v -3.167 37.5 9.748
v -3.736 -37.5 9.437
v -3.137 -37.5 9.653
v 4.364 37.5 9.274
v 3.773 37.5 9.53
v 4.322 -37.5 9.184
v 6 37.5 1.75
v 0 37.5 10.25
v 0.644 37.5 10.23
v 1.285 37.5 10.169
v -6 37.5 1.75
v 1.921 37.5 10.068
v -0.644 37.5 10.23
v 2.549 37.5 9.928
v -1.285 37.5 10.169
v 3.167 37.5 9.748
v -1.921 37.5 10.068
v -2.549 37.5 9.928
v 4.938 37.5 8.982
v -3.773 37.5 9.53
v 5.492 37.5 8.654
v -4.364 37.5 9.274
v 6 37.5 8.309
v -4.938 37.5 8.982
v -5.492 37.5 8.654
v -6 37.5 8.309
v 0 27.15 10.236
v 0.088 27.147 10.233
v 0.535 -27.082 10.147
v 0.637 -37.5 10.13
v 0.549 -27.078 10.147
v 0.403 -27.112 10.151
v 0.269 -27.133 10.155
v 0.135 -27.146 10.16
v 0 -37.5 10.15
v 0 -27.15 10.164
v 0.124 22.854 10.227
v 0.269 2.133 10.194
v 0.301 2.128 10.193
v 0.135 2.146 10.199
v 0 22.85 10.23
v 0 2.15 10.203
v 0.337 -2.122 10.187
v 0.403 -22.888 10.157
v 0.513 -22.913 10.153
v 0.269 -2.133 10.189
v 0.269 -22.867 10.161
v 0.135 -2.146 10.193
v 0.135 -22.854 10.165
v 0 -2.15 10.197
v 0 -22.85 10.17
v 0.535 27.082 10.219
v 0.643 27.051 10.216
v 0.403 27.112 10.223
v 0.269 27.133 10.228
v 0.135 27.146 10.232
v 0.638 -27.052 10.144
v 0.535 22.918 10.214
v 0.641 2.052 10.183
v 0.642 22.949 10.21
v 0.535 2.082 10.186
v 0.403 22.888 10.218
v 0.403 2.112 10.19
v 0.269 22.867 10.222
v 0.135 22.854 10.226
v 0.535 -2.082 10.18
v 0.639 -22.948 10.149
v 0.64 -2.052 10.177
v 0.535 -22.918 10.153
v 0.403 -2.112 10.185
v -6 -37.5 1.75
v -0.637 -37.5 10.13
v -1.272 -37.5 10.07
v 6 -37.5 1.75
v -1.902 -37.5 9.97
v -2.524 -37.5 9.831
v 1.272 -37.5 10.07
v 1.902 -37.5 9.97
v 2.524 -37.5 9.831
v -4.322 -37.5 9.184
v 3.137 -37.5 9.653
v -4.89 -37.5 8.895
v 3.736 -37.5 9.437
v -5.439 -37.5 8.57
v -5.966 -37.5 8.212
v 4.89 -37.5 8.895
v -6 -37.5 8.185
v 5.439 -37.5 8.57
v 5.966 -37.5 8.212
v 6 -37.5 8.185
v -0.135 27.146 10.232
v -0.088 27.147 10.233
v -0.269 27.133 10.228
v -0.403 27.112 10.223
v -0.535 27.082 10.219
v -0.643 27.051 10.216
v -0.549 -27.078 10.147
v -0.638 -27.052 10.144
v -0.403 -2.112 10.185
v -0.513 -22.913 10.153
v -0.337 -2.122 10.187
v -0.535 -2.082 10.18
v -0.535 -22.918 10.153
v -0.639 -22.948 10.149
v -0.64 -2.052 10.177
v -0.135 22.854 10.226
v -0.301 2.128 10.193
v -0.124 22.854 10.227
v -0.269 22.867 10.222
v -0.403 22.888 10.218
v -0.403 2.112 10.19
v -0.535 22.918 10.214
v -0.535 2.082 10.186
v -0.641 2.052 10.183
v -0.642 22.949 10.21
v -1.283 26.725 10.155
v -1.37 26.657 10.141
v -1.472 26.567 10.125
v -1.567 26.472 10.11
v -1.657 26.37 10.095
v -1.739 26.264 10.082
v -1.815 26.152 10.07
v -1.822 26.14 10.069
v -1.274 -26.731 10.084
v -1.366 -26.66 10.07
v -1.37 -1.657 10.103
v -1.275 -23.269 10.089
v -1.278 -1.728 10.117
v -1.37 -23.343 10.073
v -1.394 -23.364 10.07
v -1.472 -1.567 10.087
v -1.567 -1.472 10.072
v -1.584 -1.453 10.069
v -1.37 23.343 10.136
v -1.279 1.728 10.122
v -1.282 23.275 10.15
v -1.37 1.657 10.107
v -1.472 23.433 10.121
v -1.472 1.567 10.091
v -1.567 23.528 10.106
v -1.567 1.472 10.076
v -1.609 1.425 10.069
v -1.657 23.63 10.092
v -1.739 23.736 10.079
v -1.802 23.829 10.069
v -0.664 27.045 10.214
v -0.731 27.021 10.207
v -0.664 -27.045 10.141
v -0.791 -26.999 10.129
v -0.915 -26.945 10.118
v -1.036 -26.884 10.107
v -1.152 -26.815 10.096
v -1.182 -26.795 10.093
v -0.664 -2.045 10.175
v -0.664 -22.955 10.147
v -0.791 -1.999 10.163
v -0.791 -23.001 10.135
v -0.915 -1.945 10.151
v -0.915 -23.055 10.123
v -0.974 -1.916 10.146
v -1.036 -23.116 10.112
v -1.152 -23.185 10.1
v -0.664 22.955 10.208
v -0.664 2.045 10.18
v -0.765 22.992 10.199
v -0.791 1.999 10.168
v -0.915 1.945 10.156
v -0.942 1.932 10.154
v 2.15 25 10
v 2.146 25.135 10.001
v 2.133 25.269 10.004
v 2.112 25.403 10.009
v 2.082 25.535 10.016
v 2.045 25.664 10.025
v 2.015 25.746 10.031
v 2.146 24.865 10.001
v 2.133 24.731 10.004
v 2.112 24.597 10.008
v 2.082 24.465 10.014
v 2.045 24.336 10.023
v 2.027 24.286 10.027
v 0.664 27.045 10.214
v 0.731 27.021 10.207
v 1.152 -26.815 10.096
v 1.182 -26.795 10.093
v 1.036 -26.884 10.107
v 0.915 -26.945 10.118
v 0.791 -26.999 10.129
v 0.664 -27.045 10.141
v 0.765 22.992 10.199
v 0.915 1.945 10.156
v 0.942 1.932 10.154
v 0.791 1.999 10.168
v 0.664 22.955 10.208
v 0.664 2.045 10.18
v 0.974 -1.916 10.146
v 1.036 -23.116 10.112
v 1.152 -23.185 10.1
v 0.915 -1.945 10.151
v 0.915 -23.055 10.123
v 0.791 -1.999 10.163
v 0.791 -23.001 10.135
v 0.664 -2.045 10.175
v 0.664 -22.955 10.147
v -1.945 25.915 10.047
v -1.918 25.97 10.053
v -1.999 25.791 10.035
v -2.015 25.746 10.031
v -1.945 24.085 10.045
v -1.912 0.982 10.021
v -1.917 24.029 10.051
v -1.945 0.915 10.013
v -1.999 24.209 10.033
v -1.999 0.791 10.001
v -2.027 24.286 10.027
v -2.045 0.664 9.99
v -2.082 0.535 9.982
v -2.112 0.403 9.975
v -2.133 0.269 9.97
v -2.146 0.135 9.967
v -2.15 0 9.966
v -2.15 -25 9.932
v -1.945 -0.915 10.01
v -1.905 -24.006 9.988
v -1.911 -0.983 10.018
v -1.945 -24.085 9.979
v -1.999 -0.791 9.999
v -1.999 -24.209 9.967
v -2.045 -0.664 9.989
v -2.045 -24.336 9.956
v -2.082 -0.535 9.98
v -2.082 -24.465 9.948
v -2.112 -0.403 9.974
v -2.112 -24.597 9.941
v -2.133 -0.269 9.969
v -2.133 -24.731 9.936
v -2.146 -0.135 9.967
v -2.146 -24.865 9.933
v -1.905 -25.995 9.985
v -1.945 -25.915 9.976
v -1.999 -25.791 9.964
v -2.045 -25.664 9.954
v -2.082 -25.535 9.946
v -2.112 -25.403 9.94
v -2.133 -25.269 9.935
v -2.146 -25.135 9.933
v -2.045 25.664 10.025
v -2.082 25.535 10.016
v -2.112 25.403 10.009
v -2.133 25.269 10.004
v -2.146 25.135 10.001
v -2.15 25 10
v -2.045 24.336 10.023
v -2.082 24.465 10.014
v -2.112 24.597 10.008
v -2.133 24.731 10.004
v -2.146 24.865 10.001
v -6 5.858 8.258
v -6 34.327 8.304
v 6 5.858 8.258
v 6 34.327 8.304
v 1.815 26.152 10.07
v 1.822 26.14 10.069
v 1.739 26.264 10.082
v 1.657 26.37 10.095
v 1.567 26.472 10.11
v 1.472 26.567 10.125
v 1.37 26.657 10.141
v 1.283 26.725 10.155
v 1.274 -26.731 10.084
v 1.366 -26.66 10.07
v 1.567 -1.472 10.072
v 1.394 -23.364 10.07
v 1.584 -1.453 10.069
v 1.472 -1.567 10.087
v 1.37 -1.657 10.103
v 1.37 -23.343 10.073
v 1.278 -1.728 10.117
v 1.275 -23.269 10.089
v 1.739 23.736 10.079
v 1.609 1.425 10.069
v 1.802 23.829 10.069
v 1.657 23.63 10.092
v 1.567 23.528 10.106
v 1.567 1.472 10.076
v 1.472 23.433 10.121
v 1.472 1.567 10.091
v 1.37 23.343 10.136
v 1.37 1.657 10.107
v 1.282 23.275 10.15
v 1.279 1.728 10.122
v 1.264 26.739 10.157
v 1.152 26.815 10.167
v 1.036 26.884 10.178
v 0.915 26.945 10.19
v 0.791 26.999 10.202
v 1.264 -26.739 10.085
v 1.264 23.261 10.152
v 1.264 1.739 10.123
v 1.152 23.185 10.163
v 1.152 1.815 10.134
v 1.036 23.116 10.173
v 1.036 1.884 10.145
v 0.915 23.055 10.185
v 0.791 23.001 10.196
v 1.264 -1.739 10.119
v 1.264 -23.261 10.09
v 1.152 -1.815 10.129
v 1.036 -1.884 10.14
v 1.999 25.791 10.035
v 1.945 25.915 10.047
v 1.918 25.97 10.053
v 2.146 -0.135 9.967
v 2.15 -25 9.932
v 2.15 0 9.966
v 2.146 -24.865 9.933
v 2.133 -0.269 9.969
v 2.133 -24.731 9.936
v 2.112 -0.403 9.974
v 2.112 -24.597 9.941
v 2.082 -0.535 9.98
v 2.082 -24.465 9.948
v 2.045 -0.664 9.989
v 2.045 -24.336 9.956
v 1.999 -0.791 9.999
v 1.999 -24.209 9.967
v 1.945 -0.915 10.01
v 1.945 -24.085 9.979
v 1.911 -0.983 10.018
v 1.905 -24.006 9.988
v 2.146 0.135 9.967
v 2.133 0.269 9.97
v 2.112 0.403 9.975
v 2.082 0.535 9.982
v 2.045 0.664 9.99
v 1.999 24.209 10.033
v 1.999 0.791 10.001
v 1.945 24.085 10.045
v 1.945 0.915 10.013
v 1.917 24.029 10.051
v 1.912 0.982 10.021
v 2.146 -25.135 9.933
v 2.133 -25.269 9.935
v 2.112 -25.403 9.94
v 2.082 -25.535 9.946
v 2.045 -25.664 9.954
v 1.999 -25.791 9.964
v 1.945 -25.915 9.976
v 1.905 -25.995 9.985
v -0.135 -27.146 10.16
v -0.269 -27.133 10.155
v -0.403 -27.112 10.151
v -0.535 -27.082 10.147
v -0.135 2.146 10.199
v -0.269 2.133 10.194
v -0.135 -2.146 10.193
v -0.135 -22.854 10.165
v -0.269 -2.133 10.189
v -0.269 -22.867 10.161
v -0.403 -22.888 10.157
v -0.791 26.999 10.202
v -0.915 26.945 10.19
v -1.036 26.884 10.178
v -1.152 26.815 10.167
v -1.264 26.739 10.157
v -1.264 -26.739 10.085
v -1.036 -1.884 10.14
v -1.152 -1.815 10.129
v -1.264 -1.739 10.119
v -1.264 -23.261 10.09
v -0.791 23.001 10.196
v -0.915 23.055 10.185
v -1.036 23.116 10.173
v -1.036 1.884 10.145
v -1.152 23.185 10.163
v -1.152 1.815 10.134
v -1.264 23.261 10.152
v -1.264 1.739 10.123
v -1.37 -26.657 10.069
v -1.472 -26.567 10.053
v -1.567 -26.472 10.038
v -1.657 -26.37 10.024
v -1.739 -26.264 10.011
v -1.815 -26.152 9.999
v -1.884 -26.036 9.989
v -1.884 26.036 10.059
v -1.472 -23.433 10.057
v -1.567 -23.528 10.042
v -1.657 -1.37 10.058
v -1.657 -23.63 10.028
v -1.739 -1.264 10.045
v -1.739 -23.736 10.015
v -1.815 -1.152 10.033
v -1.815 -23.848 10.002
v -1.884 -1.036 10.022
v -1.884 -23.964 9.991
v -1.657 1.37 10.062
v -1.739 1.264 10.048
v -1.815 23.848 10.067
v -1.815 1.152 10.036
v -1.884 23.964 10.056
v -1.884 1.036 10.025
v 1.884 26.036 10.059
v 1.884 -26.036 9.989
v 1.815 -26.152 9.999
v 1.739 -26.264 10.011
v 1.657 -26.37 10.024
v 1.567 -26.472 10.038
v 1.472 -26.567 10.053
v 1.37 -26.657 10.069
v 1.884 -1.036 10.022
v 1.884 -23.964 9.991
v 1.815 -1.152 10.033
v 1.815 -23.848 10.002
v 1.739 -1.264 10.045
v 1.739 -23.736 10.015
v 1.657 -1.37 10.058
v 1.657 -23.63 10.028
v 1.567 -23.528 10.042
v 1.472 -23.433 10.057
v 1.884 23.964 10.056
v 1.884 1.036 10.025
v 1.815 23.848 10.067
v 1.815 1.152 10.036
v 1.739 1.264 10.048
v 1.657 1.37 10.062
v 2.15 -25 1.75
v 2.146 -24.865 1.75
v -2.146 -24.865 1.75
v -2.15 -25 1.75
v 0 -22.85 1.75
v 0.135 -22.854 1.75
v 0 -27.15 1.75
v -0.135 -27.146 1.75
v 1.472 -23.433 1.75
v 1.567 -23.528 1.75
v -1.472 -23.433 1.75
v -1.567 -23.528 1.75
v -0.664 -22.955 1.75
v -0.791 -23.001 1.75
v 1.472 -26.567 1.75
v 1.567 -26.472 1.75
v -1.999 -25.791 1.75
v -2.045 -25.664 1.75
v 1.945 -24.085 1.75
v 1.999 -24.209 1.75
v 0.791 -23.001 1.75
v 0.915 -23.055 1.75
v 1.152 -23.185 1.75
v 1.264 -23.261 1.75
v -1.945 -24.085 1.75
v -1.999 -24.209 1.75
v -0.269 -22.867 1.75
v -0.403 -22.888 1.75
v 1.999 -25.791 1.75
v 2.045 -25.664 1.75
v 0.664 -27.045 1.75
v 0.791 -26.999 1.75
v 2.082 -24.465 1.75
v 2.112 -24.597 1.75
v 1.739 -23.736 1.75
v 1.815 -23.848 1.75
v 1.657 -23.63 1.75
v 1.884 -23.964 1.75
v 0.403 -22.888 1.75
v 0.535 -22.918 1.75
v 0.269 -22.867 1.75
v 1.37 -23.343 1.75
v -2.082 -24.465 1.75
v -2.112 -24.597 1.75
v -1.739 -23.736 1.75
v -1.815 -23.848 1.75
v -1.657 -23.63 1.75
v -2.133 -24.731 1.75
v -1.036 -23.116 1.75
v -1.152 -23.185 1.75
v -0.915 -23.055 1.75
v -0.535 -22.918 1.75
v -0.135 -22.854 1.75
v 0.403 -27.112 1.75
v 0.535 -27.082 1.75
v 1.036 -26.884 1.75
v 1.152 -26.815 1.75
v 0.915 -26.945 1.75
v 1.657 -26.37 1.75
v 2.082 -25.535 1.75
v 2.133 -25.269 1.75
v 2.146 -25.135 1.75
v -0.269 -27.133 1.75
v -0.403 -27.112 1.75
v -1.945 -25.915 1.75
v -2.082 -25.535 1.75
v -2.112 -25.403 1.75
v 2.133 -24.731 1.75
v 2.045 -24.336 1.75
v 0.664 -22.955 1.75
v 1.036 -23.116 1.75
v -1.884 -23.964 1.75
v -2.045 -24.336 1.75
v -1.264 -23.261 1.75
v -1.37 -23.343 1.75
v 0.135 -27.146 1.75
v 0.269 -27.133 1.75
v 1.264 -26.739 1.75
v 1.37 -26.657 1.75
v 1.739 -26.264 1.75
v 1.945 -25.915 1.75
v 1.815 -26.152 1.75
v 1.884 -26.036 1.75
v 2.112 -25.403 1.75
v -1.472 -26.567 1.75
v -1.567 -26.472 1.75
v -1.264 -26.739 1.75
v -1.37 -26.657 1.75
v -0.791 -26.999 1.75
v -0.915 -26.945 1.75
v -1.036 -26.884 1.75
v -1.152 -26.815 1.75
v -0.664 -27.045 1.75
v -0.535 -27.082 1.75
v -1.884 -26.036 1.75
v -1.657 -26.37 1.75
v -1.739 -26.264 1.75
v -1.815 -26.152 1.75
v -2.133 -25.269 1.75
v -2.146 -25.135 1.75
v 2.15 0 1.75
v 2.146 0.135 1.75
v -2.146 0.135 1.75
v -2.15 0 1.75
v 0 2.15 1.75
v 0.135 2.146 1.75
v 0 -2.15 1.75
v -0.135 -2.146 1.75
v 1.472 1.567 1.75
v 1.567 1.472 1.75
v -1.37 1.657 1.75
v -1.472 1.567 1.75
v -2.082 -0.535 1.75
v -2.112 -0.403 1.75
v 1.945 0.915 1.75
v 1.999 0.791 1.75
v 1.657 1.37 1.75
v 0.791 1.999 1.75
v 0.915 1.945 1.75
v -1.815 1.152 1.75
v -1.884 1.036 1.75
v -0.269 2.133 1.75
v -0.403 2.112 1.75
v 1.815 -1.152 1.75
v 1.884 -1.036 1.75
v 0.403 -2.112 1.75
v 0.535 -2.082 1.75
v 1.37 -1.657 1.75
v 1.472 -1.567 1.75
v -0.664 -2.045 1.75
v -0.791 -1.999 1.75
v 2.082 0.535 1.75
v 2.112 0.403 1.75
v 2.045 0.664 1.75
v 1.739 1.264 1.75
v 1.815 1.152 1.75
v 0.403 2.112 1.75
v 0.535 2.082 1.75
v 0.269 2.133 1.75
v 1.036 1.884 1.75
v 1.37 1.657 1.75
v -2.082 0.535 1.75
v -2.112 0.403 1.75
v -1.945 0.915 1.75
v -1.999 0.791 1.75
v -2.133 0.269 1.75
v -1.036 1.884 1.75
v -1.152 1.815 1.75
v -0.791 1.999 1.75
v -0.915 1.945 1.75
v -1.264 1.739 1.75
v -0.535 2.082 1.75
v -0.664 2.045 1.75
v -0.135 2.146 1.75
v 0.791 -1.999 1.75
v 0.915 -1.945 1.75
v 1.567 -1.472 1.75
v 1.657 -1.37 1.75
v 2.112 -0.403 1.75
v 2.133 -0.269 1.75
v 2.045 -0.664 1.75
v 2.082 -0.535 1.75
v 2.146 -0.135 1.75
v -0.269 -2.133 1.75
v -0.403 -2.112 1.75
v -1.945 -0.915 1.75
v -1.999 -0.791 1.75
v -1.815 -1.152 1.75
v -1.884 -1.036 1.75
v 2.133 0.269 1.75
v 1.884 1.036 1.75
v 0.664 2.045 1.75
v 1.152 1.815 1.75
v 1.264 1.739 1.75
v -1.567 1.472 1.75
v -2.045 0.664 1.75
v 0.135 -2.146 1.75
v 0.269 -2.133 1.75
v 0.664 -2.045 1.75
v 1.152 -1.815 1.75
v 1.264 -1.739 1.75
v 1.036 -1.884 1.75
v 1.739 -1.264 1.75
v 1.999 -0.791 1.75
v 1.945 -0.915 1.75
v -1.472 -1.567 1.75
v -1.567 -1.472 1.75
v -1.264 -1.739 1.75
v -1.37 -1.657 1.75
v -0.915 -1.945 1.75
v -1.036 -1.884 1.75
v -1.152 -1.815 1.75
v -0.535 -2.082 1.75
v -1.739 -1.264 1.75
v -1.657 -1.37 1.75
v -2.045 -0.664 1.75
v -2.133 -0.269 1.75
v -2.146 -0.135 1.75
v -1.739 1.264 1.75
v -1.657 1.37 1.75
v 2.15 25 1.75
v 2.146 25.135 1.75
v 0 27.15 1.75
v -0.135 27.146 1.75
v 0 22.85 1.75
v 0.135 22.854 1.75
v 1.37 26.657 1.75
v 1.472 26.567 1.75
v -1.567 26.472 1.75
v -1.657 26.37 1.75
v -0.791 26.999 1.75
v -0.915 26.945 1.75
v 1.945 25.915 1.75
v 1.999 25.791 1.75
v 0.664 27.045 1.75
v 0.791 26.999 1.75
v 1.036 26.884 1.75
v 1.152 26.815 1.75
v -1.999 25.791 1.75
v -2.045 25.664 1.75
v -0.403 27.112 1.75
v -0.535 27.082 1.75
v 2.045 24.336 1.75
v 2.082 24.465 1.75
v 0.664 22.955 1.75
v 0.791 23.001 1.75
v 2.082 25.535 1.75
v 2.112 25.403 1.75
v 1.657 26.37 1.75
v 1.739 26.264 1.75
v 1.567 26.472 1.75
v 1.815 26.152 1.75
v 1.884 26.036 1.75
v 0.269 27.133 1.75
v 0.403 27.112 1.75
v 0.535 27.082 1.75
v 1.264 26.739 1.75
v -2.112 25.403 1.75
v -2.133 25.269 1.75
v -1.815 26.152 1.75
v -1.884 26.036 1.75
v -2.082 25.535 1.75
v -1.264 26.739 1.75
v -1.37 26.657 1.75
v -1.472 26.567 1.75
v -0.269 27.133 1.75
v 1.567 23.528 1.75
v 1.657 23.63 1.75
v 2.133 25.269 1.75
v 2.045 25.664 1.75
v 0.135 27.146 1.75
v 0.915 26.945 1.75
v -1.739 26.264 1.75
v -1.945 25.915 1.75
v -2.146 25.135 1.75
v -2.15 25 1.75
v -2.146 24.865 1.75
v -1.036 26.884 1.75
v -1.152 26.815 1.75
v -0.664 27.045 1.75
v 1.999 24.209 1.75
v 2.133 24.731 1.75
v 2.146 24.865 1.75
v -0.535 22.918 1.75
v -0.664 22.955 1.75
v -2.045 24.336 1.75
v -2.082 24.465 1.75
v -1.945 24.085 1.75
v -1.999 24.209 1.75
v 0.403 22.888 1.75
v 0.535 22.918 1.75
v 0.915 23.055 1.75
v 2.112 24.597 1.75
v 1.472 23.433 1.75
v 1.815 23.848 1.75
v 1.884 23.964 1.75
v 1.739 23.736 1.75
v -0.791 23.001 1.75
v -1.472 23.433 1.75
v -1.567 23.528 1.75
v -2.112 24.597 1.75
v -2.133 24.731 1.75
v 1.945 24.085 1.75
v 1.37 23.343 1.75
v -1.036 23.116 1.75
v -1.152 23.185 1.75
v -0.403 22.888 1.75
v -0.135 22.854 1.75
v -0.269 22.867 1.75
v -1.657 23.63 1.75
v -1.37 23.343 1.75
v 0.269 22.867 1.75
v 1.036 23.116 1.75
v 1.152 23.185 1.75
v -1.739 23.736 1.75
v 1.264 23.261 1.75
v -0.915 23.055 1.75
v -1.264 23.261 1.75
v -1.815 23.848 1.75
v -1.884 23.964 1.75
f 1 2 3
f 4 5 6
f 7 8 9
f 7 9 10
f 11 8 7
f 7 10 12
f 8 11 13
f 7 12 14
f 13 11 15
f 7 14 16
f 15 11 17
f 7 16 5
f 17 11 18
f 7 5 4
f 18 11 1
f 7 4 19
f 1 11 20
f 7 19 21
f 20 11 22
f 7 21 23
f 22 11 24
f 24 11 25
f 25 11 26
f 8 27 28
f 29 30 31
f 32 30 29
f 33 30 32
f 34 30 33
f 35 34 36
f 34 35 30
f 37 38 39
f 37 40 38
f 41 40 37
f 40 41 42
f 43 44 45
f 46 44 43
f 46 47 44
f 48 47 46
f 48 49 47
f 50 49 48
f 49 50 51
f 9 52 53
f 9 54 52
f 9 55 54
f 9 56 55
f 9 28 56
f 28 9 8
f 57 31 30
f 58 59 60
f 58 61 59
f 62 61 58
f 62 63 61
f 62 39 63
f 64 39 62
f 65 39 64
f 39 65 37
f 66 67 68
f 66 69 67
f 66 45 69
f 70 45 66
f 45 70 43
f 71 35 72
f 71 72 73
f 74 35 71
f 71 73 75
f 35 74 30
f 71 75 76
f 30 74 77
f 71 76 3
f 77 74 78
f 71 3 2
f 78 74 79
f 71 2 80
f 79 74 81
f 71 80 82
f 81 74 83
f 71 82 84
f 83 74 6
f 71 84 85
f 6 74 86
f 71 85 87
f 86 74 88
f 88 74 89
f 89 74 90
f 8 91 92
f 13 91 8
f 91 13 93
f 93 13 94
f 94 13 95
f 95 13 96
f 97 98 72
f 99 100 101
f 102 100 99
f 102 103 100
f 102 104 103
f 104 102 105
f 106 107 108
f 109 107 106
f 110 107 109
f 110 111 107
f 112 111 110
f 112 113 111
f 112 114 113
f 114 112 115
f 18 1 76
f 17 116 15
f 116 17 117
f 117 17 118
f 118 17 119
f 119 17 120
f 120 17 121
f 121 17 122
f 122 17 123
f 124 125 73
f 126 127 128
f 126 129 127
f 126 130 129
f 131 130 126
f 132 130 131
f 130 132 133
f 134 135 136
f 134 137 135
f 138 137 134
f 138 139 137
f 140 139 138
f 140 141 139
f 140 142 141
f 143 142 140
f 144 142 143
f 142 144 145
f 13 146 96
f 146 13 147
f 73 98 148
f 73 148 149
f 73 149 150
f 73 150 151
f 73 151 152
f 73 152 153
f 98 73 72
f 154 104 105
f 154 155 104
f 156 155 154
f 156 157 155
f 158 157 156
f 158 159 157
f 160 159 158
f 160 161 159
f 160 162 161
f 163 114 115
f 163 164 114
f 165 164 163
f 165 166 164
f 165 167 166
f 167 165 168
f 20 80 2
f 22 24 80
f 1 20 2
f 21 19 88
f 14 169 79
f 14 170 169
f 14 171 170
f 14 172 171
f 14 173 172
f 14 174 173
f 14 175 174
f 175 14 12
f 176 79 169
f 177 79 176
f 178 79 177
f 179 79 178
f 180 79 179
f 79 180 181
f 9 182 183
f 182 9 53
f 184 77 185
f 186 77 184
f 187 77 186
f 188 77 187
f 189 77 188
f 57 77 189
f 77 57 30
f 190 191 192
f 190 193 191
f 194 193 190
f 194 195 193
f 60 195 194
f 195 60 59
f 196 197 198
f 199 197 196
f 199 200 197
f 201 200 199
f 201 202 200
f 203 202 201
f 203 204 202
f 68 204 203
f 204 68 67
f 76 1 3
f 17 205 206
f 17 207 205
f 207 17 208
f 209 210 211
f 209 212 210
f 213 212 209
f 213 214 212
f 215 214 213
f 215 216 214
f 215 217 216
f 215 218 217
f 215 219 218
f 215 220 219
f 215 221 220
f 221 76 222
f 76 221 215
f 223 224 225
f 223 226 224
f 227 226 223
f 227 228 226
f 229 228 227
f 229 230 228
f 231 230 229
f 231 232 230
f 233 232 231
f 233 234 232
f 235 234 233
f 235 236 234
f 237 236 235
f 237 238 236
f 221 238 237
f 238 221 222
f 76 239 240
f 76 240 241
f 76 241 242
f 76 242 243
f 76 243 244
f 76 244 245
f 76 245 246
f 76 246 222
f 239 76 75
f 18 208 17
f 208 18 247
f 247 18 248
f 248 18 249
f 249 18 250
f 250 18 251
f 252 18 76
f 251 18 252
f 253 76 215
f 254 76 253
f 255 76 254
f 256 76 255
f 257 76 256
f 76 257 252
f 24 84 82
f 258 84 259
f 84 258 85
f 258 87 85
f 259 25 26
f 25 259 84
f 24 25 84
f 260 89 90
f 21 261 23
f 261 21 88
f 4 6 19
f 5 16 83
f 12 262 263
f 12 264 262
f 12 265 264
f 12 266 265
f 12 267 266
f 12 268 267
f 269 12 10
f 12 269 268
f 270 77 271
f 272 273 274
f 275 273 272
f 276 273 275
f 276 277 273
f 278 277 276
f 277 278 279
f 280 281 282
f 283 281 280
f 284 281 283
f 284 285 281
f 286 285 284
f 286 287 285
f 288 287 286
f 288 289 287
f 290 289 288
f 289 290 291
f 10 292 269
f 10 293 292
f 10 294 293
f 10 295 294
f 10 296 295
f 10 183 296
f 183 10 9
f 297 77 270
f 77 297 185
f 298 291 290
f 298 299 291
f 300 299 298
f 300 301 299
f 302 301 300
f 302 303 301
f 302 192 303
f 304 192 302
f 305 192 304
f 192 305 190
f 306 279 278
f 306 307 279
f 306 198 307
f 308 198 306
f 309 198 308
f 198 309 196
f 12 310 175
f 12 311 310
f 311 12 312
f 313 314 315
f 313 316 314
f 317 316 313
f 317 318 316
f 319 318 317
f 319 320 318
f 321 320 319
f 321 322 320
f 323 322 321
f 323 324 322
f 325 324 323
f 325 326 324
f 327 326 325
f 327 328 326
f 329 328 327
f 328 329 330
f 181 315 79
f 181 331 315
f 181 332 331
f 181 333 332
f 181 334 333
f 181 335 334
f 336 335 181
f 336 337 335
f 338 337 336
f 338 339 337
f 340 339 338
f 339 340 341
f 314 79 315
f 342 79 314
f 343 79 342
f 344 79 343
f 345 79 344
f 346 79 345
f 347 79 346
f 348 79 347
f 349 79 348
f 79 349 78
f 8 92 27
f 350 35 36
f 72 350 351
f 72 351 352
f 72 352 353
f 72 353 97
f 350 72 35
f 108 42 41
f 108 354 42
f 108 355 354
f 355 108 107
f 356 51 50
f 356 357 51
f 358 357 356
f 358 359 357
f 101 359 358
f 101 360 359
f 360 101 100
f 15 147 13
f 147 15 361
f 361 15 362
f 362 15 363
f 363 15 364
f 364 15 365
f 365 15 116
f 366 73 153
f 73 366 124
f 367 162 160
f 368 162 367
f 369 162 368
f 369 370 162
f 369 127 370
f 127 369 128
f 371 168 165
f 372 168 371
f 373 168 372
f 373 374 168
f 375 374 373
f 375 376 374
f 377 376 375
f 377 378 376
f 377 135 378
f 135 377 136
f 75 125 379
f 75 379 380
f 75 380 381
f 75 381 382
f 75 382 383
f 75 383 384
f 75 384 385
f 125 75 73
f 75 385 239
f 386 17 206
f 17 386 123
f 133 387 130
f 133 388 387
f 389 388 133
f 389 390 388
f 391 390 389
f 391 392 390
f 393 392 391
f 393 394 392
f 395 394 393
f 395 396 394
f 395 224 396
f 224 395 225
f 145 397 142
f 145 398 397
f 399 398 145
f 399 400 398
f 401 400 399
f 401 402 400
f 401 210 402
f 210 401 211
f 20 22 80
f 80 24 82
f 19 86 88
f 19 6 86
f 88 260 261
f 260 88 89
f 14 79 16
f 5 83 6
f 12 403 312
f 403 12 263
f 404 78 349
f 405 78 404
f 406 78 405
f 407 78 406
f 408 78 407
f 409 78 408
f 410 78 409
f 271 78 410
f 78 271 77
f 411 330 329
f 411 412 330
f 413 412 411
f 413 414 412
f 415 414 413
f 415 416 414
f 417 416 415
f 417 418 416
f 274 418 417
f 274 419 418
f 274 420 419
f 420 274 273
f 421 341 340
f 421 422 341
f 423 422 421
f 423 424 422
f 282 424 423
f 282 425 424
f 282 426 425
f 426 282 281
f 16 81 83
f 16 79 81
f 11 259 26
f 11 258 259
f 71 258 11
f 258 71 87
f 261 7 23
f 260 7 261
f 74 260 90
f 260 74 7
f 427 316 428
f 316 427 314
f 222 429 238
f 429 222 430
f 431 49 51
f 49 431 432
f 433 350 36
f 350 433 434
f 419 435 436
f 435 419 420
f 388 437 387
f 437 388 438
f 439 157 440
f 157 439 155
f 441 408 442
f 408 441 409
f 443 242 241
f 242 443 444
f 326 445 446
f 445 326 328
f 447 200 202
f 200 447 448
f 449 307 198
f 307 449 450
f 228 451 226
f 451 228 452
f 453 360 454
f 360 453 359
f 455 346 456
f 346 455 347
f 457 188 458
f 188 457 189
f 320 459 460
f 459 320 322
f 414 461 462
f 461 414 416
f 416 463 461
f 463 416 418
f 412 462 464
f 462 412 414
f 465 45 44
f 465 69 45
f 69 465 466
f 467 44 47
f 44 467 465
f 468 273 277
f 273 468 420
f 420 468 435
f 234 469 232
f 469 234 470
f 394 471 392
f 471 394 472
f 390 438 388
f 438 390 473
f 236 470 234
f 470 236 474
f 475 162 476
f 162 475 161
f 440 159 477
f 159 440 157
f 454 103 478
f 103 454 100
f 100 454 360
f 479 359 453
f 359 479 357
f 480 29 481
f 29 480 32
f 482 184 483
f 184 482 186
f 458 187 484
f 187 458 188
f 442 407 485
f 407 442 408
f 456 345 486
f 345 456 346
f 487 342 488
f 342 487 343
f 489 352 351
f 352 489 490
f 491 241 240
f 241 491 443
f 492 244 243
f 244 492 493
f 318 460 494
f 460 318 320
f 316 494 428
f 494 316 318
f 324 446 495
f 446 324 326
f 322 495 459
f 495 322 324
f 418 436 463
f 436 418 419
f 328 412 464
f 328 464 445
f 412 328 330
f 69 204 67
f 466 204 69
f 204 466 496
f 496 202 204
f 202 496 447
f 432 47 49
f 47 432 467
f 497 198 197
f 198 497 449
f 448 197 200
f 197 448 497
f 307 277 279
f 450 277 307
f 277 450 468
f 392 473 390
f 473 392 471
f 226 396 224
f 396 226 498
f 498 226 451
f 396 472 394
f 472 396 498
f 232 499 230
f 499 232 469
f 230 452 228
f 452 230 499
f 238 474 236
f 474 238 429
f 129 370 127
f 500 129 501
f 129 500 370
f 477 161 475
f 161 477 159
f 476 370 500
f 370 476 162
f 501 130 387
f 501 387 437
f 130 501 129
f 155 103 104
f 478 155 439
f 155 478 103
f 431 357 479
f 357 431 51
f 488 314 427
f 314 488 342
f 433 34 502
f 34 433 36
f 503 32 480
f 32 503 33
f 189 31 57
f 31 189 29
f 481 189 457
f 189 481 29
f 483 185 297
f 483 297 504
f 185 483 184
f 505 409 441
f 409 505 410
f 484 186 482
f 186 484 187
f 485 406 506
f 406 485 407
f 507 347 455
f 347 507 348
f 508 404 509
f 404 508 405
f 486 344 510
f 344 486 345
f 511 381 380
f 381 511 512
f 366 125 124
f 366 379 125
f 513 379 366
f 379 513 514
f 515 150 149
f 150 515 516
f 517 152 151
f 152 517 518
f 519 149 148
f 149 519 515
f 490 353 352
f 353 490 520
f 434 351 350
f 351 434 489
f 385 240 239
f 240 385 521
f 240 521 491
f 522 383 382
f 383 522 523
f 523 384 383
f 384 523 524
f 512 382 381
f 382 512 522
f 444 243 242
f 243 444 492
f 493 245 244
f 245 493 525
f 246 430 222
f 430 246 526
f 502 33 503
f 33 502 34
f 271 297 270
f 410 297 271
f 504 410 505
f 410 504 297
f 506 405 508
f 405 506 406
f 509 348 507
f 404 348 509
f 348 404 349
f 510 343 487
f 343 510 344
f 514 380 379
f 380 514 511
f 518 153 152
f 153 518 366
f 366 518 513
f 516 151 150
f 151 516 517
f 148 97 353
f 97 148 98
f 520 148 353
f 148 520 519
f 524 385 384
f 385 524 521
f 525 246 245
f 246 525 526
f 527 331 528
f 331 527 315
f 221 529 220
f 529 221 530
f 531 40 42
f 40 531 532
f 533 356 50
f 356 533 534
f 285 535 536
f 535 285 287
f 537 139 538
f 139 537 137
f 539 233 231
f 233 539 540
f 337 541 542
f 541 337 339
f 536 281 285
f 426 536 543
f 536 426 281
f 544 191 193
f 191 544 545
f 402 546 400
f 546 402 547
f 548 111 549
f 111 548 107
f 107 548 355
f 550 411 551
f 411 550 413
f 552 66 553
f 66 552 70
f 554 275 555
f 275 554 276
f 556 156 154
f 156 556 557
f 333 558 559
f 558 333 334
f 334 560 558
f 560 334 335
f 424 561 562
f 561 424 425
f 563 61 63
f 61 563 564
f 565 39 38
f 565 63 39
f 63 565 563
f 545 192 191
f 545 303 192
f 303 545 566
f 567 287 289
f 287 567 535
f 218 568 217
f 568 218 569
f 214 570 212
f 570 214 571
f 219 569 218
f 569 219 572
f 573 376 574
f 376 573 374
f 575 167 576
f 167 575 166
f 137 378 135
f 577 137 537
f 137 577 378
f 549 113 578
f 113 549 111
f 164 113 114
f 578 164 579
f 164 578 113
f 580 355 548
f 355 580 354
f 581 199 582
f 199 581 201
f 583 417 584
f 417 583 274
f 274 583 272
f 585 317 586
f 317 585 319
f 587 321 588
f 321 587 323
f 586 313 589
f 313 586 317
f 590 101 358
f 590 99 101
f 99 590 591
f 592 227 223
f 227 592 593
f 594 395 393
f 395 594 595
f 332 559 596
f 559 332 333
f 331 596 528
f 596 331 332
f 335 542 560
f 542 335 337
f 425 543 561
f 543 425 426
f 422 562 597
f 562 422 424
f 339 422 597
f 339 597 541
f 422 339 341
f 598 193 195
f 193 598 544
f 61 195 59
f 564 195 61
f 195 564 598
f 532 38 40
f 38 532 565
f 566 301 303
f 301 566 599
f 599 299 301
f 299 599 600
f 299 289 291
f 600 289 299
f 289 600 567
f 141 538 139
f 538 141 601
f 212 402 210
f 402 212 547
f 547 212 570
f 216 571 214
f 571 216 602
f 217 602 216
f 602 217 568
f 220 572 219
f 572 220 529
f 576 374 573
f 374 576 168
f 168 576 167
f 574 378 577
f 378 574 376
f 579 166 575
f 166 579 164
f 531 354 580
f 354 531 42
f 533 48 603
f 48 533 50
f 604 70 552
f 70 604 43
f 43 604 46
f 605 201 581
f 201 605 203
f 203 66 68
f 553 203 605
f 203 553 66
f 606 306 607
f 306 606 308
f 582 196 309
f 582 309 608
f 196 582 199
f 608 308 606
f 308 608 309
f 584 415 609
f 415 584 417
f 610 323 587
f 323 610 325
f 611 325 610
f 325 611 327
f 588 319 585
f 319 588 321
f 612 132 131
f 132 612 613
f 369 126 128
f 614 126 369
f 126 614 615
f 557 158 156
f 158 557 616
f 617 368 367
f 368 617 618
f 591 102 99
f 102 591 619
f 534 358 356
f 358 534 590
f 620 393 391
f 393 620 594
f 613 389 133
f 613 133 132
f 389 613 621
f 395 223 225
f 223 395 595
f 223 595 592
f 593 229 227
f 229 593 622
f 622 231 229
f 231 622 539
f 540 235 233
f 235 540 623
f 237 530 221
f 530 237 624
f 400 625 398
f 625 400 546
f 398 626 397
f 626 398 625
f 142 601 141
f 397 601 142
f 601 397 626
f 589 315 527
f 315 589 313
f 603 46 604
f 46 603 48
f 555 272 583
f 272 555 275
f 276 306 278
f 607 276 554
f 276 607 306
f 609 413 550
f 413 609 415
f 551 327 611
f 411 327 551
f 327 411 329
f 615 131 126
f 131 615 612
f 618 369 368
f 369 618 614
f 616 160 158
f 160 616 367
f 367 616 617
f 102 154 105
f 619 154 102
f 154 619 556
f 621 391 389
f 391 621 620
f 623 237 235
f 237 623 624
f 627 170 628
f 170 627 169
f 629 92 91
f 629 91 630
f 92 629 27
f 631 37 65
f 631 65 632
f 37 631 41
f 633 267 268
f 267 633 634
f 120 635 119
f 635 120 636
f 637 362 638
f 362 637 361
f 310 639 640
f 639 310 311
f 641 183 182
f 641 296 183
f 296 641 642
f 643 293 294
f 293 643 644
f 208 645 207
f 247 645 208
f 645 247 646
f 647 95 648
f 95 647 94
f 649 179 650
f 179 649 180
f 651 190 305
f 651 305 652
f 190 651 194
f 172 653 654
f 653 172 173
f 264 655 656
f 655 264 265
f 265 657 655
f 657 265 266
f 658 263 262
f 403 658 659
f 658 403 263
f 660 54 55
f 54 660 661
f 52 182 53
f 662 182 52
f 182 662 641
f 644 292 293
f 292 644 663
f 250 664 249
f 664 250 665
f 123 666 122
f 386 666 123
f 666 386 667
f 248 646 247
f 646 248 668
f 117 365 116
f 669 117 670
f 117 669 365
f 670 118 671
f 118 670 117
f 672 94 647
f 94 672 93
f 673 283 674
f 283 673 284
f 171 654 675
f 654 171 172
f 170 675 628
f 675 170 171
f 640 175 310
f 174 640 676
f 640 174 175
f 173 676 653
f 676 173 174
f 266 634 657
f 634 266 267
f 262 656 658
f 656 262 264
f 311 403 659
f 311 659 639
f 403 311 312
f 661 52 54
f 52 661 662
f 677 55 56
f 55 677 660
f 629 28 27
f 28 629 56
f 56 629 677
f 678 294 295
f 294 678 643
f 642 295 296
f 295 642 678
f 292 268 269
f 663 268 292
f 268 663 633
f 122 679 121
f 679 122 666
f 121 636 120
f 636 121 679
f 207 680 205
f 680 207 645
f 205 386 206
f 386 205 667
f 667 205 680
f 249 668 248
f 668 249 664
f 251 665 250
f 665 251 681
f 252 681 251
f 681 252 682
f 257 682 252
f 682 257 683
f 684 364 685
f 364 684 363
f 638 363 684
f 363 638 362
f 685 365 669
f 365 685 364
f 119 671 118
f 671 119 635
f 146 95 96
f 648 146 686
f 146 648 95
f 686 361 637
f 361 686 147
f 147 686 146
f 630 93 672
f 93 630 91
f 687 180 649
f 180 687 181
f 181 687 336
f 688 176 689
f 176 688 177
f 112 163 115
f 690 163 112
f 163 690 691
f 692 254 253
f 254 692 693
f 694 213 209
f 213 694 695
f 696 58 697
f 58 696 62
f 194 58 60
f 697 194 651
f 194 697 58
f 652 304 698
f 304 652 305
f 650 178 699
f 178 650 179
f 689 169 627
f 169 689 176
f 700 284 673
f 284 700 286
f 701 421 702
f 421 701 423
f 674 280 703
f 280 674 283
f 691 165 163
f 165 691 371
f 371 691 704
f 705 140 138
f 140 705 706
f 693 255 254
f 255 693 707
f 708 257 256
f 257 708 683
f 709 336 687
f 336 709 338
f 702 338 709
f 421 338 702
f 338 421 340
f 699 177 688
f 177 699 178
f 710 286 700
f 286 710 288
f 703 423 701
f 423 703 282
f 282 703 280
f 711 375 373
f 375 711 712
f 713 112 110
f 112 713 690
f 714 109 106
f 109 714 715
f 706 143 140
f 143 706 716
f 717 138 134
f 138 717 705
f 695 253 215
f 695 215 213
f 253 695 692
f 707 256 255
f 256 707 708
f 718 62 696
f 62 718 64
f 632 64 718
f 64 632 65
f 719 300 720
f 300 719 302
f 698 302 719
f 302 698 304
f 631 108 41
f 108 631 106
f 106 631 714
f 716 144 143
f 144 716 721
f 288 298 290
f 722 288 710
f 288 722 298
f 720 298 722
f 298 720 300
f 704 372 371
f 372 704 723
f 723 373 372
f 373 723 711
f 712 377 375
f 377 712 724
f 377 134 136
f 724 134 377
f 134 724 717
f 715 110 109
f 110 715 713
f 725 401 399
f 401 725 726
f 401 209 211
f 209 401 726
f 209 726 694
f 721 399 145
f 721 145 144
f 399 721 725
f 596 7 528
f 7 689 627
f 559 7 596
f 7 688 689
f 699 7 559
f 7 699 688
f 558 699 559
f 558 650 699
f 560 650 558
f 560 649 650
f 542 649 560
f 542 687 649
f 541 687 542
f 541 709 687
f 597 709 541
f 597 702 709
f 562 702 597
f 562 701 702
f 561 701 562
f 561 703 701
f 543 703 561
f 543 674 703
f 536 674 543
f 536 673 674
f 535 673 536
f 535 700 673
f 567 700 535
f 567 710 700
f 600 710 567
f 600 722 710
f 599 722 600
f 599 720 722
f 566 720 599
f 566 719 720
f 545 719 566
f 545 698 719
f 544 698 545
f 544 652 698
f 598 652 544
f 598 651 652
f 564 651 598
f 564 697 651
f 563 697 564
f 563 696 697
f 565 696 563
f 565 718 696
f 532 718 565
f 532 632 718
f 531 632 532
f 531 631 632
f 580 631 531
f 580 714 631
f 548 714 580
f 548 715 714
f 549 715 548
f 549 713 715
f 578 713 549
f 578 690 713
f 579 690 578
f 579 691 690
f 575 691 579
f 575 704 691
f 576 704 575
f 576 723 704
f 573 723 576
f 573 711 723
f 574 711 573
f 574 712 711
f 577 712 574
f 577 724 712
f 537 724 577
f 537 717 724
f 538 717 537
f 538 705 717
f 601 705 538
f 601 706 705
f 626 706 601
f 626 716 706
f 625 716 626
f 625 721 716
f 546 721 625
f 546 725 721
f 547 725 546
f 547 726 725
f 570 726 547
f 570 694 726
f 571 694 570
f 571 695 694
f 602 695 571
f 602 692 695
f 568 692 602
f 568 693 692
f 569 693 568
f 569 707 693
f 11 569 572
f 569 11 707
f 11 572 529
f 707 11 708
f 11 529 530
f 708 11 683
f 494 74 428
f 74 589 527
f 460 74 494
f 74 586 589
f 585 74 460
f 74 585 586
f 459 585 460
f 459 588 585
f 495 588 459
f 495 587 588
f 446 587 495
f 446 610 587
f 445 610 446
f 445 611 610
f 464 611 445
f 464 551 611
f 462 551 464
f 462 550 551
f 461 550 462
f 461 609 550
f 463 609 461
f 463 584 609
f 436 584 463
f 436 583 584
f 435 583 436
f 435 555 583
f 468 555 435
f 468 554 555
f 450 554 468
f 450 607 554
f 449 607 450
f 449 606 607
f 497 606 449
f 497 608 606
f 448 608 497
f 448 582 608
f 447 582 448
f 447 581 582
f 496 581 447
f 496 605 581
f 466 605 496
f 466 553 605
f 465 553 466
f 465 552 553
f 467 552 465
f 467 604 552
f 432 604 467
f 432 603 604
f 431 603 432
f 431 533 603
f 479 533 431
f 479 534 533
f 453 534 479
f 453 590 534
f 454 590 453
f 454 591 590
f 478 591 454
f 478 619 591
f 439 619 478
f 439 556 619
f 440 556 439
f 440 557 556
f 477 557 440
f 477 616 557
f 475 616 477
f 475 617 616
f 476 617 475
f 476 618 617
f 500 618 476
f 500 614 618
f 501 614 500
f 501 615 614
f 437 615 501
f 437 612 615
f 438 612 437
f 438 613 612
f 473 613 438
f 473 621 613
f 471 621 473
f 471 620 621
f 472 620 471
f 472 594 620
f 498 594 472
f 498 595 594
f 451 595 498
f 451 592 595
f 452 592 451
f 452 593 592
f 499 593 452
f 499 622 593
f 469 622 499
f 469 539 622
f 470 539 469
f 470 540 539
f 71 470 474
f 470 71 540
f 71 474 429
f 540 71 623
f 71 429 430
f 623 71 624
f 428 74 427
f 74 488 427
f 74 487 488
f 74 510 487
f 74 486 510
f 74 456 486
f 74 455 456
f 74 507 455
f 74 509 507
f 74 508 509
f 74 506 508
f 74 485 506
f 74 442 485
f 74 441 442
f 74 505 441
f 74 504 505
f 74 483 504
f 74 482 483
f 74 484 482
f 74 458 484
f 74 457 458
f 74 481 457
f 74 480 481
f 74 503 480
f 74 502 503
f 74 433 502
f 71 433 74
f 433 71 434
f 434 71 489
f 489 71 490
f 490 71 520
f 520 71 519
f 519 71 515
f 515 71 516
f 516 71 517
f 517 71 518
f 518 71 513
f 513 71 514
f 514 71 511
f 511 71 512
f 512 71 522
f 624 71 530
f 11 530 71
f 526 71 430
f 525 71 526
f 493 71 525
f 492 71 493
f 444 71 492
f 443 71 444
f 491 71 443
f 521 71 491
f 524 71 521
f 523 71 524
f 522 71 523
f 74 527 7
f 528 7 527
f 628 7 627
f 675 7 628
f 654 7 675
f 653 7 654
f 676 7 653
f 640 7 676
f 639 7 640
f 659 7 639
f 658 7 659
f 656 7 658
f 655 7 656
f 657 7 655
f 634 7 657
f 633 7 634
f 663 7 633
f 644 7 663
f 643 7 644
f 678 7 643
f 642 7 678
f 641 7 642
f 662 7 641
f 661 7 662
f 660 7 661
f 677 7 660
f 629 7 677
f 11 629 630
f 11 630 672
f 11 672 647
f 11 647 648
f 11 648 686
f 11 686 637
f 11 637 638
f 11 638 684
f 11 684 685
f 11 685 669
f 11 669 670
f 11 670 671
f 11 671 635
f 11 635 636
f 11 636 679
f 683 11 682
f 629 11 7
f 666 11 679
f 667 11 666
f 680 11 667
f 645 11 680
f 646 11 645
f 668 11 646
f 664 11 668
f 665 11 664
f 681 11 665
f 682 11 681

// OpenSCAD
$fn = 100;
epsilon = 0.2;

tolerance = 0.25;

pipe_id = 21;
conic = 0.2;

plate_thickness = 3;

hole_size = 4.3;
hole_spacing = 25;
holes = 2;

length = (holes+1)*hole_spacing;

intersection() {
    difference() {
        intersection() {
            rotate([90,0,0]) cylinder(h=length, d1=pipe_id-tolerance*2, d2=pipe_id-tolerance*2-conic, center=true);
            cube([12,length,pipe_id], true);
        }
        cube([pipe_id+epsilon, length+2*epsilon, plate_thickness+tolerance*2], center=true);
        for (i = [0:holes]) {
            translate([0, -length/2 + hole_spacing/2 + hole_spacing*i, 0]) cylinder(h=pipe_id+2*epsilon, d=hole_size, center=true);
        }
    }
    translate([0,0,pipe_id/4]) cube([pipe_id+2*epsilon, length+2*epsilon, pipe_id/2+epsilon], center=true);
}
